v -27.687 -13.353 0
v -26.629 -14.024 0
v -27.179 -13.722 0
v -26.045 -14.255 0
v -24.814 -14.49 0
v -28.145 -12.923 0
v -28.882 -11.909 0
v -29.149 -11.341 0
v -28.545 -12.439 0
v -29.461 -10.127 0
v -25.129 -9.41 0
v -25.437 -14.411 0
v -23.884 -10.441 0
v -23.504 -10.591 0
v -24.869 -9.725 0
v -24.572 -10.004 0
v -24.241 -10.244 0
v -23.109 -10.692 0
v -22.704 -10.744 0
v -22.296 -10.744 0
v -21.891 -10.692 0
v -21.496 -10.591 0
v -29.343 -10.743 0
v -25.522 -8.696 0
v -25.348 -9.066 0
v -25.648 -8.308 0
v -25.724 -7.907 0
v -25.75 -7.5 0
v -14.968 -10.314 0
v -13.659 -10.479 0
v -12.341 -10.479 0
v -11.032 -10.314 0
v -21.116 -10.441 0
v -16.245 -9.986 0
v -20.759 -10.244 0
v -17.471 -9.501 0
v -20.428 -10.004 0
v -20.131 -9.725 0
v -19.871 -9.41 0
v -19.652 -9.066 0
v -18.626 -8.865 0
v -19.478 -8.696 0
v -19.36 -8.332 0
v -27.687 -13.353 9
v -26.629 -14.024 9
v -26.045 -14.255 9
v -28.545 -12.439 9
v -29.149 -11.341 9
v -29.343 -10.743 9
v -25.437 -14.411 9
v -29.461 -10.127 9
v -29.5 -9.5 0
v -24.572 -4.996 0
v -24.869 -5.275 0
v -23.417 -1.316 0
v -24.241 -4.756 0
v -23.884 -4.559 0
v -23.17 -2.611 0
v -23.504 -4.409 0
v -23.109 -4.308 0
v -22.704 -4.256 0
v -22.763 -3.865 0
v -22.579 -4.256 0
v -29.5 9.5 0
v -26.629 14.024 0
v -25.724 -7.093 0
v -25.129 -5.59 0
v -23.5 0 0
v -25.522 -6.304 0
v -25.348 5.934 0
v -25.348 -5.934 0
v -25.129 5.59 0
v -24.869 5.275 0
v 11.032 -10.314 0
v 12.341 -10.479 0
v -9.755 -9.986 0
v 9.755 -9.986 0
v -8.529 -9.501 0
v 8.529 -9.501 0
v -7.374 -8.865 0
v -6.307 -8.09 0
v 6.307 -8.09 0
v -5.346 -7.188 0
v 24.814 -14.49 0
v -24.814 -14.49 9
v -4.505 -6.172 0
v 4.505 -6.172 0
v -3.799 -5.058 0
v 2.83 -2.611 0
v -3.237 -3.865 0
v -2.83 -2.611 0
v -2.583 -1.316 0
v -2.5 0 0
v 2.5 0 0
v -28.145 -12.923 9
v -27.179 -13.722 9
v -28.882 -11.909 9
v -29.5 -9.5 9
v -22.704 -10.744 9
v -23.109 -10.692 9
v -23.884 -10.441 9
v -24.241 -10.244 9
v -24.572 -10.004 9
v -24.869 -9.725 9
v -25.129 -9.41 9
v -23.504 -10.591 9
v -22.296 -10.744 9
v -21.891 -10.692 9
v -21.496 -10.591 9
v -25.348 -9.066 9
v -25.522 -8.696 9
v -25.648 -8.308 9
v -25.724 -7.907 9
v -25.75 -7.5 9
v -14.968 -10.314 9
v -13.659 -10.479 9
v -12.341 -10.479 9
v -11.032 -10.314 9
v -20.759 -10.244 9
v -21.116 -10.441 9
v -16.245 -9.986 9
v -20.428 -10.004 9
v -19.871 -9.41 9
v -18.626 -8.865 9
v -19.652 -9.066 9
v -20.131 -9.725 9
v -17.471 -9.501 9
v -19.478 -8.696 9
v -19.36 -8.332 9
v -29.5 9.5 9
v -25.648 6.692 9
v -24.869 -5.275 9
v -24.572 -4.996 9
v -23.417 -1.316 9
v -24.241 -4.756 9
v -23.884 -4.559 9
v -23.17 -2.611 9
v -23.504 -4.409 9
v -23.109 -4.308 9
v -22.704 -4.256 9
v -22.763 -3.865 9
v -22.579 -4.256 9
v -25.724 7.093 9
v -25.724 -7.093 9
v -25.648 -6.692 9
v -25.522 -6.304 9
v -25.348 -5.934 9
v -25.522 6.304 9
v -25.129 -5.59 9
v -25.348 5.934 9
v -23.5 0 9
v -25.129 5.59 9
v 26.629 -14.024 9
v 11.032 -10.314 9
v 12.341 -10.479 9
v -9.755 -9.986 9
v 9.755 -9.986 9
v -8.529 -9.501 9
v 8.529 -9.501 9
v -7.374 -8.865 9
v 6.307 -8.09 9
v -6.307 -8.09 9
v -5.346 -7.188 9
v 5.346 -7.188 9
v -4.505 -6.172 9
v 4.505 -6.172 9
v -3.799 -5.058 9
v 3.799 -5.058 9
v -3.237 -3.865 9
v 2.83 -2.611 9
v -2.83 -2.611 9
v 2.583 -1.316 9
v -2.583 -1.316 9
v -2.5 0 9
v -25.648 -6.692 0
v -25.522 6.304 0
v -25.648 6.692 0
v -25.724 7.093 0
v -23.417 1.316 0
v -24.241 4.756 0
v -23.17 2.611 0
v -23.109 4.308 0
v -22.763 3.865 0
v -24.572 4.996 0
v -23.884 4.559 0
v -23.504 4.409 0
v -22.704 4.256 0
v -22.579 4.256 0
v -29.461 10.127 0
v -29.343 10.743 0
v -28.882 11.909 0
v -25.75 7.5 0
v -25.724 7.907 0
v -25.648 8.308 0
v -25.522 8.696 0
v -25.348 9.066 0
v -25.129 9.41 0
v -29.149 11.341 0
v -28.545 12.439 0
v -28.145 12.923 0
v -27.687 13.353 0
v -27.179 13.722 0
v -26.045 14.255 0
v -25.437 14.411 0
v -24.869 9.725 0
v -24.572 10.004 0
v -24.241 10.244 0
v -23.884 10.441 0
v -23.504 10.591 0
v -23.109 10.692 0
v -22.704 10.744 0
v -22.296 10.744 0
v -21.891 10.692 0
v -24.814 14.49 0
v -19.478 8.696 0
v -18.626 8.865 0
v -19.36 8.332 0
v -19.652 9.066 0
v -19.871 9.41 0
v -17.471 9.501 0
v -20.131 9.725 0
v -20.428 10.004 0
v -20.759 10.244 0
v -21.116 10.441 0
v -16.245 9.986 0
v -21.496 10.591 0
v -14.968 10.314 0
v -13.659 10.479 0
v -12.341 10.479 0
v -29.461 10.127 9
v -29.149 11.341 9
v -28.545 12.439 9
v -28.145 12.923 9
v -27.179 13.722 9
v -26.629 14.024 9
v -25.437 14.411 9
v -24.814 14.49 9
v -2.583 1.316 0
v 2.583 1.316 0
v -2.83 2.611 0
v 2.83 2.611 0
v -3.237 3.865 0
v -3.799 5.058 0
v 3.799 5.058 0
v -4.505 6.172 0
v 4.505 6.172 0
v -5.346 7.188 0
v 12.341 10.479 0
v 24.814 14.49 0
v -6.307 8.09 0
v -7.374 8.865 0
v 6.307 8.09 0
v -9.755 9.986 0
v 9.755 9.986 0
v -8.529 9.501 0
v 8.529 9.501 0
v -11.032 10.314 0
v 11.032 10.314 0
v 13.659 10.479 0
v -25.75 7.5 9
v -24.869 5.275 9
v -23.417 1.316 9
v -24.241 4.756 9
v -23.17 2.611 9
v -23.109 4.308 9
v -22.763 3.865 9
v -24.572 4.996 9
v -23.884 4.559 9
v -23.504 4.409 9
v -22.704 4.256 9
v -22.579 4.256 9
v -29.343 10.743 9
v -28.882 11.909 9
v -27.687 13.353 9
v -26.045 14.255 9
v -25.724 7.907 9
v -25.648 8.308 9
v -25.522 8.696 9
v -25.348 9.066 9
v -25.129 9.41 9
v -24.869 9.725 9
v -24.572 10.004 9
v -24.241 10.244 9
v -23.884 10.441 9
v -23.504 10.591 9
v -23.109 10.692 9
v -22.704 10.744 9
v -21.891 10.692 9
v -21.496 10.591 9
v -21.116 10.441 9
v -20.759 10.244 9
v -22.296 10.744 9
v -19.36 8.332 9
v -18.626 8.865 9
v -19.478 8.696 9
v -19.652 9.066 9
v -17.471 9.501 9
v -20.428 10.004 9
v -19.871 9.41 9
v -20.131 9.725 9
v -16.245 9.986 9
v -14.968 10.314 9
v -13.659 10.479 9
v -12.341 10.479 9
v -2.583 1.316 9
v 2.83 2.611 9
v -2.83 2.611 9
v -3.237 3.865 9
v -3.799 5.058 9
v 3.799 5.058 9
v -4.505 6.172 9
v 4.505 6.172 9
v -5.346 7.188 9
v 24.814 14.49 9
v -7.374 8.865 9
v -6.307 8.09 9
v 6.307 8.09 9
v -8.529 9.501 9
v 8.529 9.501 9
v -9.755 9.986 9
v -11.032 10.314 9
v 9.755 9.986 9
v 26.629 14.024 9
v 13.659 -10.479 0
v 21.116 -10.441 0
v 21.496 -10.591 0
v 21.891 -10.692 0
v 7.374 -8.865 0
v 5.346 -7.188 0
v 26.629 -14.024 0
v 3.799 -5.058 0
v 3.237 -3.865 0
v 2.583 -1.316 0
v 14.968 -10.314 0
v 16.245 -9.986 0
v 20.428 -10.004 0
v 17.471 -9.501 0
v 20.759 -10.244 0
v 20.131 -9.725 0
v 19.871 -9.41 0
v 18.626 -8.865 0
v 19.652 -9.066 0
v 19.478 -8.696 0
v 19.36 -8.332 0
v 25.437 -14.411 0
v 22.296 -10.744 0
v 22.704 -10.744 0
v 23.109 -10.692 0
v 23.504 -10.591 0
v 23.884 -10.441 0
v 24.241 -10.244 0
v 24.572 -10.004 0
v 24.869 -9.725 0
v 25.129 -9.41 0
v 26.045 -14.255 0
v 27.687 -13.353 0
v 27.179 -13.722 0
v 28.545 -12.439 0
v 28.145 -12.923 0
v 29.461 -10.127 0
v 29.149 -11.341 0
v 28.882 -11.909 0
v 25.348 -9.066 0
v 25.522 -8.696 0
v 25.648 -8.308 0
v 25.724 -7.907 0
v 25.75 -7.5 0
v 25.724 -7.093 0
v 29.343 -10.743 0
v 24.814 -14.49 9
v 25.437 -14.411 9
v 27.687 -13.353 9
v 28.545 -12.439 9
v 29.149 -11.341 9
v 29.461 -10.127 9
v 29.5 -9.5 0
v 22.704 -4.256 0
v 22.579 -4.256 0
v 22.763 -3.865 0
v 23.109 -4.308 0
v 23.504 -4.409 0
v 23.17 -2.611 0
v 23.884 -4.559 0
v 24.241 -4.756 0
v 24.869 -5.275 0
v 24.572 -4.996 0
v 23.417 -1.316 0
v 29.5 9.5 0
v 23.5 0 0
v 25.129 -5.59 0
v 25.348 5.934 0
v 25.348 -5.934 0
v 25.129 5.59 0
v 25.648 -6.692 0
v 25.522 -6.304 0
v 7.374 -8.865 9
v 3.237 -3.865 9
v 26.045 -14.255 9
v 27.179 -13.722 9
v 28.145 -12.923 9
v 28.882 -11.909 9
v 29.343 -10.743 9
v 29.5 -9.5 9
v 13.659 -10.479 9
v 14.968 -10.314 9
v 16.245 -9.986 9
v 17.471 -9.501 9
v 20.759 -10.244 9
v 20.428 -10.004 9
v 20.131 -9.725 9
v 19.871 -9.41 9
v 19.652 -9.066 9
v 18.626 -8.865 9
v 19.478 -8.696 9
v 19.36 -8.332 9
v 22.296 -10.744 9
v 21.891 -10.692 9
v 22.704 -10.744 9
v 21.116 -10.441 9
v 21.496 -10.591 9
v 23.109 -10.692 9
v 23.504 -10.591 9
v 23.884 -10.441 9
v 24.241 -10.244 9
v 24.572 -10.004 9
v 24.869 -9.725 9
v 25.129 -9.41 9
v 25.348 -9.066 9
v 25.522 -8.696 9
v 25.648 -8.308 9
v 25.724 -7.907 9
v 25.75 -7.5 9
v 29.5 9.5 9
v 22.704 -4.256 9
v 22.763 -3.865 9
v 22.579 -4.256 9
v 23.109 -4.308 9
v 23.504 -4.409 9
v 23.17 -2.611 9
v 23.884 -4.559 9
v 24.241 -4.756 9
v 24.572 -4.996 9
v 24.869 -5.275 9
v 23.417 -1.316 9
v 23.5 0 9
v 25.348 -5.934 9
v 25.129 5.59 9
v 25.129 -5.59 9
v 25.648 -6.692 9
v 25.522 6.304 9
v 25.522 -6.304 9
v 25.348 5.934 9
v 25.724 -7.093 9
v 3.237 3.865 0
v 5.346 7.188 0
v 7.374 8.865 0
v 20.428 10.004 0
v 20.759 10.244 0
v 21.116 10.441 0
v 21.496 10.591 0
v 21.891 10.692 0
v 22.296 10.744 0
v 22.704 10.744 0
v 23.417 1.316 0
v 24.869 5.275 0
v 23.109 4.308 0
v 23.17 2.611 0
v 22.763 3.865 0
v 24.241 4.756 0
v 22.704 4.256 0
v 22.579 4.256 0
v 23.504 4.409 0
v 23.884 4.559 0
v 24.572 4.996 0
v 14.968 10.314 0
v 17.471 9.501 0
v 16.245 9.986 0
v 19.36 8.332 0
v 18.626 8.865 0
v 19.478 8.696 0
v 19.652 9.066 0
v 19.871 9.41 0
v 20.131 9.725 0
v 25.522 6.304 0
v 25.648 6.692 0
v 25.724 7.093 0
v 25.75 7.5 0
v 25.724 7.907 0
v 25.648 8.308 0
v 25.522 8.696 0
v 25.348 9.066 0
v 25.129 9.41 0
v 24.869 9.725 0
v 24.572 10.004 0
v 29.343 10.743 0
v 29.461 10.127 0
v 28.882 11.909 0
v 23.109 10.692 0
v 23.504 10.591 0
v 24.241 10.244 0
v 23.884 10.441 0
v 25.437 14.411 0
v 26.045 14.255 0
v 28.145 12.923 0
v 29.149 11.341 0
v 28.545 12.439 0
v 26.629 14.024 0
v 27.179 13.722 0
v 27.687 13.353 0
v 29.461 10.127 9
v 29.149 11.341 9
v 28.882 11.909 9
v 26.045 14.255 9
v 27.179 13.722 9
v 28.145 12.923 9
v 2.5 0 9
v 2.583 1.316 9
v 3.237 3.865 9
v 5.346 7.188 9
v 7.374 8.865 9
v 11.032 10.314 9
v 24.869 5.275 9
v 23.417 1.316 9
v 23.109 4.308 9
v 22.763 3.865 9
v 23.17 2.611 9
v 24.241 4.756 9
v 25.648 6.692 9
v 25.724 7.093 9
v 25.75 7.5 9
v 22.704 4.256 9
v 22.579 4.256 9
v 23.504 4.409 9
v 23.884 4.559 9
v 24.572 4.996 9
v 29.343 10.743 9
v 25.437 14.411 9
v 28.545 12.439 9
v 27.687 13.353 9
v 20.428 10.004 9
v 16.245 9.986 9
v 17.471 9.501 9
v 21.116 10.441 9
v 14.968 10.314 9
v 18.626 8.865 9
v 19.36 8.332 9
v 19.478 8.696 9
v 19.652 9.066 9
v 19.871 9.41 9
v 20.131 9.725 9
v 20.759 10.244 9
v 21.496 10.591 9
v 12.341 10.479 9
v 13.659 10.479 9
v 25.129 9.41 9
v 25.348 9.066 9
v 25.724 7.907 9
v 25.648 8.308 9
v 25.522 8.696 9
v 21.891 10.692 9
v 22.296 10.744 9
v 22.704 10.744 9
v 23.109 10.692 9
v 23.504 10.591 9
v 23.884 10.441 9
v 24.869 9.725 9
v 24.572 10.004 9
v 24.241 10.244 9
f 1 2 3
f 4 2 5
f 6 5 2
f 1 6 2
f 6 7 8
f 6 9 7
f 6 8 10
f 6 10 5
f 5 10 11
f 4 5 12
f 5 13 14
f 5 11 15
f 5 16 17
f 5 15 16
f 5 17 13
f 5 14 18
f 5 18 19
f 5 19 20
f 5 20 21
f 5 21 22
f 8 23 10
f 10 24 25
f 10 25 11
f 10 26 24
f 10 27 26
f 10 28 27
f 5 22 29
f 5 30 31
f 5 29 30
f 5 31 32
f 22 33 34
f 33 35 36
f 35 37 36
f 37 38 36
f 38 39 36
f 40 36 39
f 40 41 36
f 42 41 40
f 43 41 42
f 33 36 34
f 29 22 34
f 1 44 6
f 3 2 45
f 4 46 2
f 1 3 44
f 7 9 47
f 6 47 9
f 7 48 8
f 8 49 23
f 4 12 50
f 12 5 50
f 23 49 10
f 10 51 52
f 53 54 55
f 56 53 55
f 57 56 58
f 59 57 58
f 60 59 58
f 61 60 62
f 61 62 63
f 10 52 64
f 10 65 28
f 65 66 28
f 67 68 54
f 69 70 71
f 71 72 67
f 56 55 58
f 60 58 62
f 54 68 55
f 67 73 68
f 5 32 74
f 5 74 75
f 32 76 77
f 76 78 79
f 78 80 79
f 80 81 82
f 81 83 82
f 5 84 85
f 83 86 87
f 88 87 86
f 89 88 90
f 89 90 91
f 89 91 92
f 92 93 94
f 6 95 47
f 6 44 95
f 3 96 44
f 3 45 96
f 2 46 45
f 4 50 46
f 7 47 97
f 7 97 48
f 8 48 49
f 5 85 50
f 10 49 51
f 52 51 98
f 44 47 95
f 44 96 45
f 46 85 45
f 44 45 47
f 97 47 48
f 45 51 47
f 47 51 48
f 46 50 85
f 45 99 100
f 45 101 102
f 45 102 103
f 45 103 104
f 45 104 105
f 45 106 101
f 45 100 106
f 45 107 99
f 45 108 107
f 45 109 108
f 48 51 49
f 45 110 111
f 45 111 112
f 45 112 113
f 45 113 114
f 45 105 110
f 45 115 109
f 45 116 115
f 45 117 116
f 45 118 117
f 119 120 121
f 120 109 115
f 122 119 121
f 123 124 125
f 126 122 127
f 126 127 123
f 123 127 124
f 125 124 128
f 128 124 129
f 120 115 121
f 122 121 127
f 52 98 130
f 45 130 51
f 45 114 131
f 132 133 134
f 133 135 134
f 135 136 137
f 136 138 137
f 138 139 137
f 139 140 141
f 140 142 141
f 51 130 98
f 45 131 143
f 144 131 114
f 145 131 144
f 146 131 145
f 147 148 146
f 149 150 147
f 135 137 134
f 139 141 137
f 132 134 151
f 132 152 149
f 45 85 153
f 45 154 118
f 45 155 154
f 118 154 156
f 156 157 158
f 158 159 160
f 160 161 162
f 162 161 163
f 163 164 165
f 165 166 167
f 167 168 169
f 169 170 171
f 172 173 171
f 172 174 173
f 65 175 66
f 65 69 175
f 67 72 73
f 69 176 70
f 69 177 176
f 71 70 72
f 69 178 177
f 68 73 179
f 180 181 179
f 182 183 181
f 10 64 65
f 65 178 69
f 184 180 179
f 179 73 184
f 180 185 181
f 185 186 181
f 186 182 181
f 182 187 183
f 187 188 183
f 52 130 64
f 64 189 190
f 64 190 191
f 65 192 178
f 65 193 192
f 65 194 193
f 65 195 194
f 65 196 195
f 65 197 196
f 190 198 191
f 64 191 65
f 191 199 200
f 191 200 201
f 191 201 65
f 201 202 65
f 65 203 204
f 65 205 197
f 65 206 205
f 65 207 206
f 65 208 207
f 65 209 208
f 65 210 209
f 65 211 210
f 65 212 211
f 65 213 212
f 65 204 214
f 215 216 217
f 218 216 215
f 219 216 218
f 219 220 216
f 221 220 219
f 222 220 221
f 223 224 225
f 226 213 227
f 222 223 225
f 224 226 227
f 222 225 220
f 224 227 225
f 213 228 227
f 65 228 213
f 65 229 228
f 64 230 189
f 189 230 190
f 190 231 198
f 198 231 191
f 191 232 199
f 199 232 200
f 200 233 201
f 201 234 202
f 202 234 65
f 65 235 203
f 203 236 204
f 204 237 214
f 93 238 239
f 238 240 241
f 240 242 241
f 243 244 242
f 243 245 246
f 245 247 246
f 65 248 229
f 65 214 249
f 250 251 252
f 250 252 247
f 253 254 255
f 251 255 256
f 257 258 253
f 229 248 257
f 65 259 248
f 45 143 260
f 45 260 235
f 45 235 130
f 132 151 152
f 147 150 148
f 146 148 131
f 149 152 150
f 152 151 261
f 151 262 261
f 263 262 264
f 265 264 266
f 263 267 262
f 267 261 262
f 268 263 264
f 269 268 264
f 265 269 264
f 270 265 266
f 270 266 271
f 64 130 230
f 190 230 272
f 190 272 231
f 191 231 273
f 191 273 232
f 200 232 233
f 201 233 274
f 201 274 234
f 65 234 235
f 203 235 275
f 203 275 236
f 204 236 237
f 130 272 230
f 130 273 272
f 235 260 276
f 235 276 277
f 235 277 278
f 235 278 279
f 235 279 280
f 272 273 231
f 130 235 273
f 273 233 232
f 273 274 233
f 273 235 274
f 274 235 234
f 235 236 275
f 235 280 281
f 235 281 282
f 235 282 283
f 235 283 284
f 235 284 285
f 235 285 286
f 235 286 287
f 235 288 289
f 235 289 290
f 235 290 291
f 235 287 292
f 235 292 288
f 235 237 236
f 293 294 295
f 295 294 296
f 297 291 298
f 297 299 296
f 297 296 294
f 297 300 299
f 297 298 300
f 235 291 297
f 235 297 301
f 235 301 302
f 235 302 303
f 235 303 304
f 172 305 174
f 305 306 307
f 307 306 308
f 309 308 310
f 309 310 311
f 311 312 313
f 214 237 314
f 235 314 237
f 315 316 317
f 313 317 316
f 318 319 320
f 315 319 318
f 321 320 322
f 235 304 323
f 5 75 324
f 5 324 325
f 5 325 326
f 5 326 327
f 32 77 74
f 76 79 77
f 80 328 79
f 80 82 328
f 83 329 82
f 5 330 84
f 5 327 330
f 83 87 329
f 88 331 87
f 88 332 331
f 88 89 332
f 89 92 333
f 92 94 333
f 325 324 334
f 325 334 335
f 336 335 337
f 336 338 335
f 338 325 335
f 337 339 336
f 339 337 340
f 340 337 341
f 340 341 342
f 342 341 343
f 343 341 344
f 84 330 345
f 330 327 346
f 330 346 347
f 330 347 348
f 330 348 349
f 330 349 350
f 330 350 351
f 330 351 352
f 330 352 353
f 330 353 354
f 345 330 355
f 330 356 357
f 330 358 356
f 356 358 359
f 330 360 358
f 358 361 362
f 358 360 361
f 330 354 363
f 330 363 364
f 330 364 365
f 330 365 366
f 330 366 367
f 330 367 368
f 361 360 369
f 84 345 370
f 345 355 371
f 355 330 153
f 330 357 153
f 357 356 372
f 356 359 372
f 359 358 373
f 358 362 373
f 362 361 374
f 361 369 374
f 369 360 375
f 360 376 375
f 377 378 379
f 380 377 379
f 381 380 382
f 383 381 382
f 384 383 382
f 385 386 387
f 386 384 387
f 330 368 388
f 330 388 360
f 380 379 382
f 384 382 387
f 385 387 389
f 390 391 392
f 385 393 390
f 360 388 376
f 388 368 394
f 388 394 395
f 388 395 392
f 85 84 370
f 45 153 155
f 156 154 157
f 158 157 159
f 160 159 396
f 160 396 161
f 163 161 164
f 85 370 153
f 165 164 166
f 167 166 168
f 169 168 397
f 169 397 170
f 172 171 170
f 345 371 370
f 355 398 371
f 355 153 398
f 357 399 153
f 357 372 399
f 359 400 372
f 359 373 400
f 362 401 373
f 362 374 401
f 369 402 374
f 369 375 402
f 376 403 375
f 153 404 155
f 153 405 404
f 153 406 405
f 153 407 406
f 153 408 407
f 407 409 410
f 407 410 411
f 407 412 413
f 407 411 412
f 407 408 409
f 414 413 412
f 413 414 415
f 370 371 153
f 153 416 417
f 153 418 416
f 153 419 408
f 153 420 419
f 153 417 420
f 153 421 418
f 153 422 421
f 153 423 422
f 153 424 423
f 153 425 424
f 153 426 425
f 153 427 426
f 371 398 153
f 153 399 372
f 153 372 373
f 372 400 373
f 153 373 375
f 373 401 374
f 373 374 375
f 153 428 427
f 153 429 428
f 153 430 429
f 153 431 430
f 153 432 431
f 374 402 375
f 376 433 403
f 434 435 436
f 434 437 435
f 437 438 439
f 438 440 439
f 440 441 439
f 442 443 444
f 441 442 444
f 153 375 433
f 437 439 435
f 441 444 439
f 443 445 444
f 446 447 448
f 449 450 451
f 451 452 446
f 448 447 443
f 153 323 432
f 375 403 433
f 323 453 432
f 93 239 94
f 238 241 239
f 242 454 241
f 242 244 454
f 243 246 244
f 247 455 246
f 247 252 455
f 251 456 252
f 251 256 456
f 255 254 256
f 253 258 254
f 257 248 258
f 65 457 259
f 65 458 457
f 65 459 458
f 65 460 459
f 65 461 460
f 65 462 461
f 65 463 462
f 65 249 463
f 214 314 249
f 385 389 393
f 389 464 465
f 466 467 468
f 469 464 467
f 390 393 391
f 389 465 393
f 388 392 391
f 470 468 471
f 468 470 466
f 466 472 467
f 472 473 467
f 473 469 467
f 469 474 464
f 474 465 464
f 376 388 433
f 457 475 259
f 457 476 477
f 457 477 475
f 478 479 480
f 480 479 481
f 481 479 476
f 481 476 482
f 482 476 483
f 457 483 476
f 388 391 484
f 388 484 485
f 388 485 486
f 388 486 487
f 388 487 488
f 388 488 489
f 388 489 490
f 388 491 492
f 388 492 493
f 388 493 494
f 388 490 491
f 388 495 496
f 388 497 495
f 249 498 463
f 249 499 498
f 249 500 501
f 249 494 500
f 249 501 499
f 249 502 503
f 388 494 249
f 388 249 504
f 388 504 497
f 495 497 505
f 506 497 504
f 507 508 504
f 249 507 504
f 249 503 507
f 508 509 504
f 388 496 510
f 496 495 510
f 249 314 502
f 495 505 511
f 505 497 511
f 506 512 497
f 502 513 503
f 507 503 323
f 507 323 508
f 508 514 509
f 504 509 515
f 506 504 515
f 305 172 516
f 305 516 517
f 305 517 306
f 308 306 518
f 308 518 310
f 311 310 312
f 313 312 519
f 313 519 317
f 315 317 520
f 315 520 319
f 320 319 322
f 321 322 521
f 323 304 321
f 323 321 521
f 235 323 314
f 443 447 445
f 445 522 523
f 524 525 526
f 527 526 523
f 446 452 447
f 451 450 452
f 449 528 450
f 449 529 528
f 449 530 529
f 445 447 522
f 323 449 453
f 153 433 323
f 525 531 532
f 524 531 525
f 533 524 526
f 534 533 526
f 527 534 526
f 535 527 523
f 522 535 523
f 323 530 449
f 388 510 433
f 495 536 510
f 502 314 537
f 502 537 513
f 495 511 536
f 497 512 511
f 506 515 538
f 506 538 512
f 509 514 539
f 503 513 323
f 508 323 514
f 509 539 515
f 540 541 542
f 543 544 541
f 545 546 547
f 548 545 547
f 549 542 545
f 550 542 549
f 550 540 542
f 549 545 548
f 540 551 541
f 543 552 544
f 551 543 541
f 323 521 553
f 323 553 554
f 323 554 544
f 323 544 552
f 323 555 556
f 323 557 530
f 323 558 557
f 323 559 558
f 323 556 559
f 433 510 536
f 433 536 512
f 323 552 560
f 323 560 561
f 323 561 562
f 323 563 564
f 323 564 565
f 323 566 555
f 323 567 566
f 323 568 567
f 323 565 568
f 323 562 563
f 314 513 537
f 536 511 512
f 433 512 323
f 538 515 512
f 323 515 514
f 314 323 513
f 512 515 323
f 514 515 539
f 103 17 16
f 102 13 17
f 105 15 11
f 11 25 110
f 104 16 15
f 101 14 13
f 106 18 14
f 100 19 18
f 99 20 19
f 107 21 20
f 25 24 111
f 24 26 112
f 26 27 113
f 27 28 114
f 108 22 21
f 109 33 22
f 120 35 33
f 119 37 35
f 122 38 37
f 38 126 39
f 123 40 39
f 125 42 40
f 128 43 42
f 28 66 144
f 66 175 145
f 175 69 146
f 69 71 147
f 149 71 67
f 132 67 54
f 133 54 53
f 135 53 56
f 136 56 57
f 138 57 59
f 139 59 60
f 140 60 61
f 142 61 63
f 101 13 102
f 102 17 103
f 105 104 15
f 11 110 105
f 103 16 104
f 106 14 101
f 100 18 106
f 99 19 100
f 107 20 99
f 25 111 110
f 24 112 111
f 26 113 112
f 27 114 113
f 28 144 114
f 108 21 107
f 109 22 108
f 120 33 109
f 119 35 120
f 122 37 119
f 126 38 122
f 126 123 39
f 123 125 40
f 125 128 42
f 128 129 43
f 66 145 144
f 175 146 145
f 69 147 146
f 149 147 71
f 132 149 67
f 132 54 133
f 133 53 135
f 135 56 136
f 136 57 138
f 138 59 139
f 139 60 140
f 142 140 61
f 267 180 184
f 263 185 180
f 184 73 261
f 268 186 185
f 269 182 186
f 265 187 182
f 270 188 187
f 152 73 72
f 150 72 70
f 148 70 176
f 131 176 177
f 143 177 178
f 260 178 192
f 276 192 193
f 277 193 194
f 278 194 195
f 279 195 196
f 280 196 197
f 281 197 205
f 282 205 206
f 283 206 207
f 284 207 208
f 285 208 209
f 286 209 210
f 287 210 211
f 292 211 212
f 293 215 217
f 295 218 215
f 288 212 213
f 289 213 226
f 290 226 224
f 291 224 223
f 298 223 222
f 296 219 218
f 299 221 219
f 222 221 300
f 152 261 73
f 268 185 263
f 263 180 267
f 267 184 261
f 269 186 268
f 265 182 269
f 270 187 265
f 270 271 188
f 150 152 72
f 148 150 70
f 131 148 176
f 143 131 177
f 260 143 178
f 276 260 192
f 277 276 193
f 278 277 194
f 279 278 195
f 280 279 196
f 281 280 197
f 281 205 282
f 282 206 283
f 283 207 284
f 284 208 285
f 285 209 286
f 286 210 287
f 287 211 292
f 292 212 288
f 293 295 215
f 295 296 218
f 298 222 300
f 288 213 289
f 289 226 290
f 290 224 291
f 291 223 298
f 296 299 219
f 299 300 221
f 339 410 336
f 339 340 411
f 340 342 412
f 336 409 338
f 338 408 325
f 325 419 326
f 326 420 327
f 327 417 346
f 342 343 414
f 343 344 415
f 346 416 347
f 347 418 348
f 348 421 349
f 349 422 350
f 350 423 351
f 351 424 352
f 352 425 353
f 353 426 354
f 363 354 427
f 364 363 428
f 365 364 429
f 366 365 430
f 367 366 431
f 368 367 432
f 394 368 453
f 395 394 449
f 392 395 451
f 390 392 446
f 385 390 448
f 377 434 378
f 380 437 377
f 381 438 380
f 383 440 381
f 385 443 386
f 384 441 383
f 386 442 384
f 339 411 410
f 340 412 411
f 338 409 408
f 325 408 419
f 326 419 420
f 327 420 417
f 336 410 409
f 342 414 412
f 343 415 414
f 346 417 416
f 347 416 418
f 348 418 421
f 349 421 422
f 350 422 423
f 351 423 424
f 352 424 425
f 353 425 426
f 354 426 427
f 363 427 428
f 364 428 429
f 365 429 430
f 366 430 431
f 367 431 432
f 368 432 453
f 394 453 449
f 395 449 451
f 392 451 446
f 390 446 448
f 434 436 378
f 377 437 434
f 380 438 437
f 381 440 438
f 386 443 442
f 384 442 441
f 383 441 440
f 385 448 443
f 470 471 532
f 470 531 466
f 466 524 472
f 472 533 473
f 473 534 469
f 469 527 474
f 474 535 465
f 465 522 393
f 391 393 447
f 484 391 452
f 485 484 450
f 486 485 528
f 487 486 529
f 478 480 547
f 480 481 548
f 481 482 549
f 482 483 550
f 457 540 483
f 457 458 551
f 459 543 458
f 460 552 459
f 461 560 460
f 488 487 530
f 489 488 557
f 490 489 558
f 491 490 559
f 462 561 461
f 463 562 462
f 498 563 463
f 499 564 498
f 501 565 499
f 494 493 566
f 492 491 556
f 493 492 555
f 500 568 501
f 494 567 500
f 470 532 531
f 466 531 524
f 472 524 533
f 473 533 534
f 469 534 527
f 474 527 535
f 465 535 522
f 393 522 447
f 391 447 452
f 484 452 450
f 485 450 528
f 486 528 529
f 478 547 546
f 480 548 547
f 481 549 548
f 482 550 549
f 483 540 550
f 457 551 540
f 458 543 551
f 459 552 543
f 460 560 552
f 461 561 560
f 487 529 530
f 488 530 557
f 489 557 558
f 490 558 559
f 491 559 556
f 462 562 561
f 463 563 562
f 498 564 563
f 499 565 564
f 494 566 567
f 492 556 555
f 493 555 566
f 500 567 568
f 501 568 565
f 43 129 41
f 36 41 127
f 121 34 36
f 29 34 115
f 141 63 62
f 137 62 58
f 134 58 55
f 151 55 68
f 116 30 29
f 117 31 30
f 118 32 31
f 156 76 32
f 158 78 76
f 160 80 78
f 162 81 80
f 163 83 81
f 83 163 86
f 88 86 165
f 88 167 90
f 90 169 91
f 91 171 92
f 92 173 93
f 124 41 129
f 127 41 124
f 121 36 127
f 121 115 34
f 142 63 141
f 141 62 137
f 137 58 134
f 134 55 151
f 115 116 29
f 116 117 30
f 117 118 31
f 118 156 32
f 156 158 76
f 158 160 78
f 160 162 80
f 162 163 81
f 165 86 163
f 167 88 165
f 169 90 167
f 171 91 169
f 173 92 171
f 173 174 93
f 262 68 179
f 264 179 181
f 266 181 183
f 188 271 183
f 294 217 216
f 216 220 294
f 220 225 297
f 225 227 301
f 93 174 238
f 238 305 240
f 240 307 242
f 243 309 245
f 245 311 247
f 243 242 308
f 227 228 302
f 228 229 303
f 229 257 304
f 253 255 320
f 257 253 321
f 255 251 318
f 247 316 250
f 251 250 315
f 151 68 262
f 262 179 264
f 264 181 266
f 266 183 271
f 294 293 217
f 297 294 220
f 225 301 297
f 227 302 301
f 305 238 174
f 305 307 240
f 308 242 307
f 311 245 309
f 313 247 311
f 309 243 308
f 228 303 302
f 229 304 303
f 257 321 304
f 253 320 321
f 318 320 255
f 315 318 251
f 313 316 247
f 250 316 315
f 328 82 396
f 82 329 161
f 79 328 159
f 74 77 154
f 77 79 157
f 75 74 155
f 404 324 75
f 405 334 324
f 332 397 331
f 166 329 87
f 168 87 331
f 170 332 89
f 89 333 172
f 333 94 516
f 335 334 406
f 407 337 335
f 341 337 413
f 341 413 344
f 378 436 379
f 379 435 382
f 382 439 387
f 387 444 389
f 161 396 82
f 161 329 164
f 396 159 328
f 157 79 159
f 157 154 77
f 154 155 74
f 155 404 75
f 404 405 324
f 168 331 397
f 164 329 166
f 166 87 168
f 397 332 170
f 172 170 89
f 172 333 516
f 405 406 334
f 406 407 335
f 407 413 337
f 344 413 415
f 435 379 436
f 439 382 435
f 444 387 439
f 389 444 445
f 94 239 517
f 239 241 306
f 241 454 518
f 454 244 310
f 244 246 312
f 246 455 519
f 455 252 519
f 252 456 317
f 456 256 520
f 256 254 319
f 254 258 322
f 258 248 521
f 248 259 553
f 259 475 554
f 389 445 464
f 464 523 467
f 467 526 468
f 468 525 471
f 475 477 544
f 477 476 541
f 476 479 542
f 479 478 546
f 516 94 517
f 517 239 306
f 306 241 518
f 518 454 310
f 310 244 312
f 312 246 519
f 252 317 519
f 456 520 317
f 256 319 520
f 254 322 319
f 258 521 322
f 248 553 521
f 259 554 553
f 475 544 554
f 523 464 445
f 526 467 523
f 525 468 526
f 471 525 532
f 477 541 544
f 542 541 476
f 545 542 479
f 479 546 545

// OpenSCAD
$fn = 50;

difference() {
	union() {
		hull() {
			translate(v = [-24.5, 9.5, 0]) {
				cylinder(h = 9, r = 5);
			}
			translate(v = [24.5, 9.5, 0]) {
				cylinder(h = 9, r = 5);
			}
			translate(v = [-24.5, -9.5, 0]) {
				cylinder(h = 9, r = 5);
			}
			translate(v = [24.5, -9.5, 0]) {
				cylinder(h = 9, r = 5);
			}
		}
	}
	union() {
		translate(v = [-22.5, -7.5, -100.0]) {
			cylinder(h = 200, r = 3.25);
		}
		translate(v = [-22.5, 7.5, -100.0]) {
			cylinder(h = 200, r = 3.25);
		}
		translate(v = [22.5, -7.5, -100.0]) {
			cylinder(h = 200, r = 3.25);
		}
		translate(v = [22.5, 7.5, -100.0]) {
			cylinder(h = 200, r = 3.25);
		}
		translate(v = [-22.5, -7.5, -100.0]) {
			cylinder(h = 200, r = 1.8);
		}
		translate(v = [-22.5, 7.5, -100.0]) {
			cylinder(h = 200, r = 1.8);
		}
		translate(v = [22.5, -7.5, -100.0]) {
			cylinder(h = 200, r = 1.8);
		}
		translate(v = [22.5, 7.5, -100.0]) {
			cylinder(h = 200, r = 1.8);
		}
		translate(v = [-13.0, 0, 0.0]) {
			cylinder(h = 9, r = 10.5);
		}
		translate(v = [13.0, 0, 0.0]) {
			cylinder(h = 9, r = 10.5);
		}
	}
}
